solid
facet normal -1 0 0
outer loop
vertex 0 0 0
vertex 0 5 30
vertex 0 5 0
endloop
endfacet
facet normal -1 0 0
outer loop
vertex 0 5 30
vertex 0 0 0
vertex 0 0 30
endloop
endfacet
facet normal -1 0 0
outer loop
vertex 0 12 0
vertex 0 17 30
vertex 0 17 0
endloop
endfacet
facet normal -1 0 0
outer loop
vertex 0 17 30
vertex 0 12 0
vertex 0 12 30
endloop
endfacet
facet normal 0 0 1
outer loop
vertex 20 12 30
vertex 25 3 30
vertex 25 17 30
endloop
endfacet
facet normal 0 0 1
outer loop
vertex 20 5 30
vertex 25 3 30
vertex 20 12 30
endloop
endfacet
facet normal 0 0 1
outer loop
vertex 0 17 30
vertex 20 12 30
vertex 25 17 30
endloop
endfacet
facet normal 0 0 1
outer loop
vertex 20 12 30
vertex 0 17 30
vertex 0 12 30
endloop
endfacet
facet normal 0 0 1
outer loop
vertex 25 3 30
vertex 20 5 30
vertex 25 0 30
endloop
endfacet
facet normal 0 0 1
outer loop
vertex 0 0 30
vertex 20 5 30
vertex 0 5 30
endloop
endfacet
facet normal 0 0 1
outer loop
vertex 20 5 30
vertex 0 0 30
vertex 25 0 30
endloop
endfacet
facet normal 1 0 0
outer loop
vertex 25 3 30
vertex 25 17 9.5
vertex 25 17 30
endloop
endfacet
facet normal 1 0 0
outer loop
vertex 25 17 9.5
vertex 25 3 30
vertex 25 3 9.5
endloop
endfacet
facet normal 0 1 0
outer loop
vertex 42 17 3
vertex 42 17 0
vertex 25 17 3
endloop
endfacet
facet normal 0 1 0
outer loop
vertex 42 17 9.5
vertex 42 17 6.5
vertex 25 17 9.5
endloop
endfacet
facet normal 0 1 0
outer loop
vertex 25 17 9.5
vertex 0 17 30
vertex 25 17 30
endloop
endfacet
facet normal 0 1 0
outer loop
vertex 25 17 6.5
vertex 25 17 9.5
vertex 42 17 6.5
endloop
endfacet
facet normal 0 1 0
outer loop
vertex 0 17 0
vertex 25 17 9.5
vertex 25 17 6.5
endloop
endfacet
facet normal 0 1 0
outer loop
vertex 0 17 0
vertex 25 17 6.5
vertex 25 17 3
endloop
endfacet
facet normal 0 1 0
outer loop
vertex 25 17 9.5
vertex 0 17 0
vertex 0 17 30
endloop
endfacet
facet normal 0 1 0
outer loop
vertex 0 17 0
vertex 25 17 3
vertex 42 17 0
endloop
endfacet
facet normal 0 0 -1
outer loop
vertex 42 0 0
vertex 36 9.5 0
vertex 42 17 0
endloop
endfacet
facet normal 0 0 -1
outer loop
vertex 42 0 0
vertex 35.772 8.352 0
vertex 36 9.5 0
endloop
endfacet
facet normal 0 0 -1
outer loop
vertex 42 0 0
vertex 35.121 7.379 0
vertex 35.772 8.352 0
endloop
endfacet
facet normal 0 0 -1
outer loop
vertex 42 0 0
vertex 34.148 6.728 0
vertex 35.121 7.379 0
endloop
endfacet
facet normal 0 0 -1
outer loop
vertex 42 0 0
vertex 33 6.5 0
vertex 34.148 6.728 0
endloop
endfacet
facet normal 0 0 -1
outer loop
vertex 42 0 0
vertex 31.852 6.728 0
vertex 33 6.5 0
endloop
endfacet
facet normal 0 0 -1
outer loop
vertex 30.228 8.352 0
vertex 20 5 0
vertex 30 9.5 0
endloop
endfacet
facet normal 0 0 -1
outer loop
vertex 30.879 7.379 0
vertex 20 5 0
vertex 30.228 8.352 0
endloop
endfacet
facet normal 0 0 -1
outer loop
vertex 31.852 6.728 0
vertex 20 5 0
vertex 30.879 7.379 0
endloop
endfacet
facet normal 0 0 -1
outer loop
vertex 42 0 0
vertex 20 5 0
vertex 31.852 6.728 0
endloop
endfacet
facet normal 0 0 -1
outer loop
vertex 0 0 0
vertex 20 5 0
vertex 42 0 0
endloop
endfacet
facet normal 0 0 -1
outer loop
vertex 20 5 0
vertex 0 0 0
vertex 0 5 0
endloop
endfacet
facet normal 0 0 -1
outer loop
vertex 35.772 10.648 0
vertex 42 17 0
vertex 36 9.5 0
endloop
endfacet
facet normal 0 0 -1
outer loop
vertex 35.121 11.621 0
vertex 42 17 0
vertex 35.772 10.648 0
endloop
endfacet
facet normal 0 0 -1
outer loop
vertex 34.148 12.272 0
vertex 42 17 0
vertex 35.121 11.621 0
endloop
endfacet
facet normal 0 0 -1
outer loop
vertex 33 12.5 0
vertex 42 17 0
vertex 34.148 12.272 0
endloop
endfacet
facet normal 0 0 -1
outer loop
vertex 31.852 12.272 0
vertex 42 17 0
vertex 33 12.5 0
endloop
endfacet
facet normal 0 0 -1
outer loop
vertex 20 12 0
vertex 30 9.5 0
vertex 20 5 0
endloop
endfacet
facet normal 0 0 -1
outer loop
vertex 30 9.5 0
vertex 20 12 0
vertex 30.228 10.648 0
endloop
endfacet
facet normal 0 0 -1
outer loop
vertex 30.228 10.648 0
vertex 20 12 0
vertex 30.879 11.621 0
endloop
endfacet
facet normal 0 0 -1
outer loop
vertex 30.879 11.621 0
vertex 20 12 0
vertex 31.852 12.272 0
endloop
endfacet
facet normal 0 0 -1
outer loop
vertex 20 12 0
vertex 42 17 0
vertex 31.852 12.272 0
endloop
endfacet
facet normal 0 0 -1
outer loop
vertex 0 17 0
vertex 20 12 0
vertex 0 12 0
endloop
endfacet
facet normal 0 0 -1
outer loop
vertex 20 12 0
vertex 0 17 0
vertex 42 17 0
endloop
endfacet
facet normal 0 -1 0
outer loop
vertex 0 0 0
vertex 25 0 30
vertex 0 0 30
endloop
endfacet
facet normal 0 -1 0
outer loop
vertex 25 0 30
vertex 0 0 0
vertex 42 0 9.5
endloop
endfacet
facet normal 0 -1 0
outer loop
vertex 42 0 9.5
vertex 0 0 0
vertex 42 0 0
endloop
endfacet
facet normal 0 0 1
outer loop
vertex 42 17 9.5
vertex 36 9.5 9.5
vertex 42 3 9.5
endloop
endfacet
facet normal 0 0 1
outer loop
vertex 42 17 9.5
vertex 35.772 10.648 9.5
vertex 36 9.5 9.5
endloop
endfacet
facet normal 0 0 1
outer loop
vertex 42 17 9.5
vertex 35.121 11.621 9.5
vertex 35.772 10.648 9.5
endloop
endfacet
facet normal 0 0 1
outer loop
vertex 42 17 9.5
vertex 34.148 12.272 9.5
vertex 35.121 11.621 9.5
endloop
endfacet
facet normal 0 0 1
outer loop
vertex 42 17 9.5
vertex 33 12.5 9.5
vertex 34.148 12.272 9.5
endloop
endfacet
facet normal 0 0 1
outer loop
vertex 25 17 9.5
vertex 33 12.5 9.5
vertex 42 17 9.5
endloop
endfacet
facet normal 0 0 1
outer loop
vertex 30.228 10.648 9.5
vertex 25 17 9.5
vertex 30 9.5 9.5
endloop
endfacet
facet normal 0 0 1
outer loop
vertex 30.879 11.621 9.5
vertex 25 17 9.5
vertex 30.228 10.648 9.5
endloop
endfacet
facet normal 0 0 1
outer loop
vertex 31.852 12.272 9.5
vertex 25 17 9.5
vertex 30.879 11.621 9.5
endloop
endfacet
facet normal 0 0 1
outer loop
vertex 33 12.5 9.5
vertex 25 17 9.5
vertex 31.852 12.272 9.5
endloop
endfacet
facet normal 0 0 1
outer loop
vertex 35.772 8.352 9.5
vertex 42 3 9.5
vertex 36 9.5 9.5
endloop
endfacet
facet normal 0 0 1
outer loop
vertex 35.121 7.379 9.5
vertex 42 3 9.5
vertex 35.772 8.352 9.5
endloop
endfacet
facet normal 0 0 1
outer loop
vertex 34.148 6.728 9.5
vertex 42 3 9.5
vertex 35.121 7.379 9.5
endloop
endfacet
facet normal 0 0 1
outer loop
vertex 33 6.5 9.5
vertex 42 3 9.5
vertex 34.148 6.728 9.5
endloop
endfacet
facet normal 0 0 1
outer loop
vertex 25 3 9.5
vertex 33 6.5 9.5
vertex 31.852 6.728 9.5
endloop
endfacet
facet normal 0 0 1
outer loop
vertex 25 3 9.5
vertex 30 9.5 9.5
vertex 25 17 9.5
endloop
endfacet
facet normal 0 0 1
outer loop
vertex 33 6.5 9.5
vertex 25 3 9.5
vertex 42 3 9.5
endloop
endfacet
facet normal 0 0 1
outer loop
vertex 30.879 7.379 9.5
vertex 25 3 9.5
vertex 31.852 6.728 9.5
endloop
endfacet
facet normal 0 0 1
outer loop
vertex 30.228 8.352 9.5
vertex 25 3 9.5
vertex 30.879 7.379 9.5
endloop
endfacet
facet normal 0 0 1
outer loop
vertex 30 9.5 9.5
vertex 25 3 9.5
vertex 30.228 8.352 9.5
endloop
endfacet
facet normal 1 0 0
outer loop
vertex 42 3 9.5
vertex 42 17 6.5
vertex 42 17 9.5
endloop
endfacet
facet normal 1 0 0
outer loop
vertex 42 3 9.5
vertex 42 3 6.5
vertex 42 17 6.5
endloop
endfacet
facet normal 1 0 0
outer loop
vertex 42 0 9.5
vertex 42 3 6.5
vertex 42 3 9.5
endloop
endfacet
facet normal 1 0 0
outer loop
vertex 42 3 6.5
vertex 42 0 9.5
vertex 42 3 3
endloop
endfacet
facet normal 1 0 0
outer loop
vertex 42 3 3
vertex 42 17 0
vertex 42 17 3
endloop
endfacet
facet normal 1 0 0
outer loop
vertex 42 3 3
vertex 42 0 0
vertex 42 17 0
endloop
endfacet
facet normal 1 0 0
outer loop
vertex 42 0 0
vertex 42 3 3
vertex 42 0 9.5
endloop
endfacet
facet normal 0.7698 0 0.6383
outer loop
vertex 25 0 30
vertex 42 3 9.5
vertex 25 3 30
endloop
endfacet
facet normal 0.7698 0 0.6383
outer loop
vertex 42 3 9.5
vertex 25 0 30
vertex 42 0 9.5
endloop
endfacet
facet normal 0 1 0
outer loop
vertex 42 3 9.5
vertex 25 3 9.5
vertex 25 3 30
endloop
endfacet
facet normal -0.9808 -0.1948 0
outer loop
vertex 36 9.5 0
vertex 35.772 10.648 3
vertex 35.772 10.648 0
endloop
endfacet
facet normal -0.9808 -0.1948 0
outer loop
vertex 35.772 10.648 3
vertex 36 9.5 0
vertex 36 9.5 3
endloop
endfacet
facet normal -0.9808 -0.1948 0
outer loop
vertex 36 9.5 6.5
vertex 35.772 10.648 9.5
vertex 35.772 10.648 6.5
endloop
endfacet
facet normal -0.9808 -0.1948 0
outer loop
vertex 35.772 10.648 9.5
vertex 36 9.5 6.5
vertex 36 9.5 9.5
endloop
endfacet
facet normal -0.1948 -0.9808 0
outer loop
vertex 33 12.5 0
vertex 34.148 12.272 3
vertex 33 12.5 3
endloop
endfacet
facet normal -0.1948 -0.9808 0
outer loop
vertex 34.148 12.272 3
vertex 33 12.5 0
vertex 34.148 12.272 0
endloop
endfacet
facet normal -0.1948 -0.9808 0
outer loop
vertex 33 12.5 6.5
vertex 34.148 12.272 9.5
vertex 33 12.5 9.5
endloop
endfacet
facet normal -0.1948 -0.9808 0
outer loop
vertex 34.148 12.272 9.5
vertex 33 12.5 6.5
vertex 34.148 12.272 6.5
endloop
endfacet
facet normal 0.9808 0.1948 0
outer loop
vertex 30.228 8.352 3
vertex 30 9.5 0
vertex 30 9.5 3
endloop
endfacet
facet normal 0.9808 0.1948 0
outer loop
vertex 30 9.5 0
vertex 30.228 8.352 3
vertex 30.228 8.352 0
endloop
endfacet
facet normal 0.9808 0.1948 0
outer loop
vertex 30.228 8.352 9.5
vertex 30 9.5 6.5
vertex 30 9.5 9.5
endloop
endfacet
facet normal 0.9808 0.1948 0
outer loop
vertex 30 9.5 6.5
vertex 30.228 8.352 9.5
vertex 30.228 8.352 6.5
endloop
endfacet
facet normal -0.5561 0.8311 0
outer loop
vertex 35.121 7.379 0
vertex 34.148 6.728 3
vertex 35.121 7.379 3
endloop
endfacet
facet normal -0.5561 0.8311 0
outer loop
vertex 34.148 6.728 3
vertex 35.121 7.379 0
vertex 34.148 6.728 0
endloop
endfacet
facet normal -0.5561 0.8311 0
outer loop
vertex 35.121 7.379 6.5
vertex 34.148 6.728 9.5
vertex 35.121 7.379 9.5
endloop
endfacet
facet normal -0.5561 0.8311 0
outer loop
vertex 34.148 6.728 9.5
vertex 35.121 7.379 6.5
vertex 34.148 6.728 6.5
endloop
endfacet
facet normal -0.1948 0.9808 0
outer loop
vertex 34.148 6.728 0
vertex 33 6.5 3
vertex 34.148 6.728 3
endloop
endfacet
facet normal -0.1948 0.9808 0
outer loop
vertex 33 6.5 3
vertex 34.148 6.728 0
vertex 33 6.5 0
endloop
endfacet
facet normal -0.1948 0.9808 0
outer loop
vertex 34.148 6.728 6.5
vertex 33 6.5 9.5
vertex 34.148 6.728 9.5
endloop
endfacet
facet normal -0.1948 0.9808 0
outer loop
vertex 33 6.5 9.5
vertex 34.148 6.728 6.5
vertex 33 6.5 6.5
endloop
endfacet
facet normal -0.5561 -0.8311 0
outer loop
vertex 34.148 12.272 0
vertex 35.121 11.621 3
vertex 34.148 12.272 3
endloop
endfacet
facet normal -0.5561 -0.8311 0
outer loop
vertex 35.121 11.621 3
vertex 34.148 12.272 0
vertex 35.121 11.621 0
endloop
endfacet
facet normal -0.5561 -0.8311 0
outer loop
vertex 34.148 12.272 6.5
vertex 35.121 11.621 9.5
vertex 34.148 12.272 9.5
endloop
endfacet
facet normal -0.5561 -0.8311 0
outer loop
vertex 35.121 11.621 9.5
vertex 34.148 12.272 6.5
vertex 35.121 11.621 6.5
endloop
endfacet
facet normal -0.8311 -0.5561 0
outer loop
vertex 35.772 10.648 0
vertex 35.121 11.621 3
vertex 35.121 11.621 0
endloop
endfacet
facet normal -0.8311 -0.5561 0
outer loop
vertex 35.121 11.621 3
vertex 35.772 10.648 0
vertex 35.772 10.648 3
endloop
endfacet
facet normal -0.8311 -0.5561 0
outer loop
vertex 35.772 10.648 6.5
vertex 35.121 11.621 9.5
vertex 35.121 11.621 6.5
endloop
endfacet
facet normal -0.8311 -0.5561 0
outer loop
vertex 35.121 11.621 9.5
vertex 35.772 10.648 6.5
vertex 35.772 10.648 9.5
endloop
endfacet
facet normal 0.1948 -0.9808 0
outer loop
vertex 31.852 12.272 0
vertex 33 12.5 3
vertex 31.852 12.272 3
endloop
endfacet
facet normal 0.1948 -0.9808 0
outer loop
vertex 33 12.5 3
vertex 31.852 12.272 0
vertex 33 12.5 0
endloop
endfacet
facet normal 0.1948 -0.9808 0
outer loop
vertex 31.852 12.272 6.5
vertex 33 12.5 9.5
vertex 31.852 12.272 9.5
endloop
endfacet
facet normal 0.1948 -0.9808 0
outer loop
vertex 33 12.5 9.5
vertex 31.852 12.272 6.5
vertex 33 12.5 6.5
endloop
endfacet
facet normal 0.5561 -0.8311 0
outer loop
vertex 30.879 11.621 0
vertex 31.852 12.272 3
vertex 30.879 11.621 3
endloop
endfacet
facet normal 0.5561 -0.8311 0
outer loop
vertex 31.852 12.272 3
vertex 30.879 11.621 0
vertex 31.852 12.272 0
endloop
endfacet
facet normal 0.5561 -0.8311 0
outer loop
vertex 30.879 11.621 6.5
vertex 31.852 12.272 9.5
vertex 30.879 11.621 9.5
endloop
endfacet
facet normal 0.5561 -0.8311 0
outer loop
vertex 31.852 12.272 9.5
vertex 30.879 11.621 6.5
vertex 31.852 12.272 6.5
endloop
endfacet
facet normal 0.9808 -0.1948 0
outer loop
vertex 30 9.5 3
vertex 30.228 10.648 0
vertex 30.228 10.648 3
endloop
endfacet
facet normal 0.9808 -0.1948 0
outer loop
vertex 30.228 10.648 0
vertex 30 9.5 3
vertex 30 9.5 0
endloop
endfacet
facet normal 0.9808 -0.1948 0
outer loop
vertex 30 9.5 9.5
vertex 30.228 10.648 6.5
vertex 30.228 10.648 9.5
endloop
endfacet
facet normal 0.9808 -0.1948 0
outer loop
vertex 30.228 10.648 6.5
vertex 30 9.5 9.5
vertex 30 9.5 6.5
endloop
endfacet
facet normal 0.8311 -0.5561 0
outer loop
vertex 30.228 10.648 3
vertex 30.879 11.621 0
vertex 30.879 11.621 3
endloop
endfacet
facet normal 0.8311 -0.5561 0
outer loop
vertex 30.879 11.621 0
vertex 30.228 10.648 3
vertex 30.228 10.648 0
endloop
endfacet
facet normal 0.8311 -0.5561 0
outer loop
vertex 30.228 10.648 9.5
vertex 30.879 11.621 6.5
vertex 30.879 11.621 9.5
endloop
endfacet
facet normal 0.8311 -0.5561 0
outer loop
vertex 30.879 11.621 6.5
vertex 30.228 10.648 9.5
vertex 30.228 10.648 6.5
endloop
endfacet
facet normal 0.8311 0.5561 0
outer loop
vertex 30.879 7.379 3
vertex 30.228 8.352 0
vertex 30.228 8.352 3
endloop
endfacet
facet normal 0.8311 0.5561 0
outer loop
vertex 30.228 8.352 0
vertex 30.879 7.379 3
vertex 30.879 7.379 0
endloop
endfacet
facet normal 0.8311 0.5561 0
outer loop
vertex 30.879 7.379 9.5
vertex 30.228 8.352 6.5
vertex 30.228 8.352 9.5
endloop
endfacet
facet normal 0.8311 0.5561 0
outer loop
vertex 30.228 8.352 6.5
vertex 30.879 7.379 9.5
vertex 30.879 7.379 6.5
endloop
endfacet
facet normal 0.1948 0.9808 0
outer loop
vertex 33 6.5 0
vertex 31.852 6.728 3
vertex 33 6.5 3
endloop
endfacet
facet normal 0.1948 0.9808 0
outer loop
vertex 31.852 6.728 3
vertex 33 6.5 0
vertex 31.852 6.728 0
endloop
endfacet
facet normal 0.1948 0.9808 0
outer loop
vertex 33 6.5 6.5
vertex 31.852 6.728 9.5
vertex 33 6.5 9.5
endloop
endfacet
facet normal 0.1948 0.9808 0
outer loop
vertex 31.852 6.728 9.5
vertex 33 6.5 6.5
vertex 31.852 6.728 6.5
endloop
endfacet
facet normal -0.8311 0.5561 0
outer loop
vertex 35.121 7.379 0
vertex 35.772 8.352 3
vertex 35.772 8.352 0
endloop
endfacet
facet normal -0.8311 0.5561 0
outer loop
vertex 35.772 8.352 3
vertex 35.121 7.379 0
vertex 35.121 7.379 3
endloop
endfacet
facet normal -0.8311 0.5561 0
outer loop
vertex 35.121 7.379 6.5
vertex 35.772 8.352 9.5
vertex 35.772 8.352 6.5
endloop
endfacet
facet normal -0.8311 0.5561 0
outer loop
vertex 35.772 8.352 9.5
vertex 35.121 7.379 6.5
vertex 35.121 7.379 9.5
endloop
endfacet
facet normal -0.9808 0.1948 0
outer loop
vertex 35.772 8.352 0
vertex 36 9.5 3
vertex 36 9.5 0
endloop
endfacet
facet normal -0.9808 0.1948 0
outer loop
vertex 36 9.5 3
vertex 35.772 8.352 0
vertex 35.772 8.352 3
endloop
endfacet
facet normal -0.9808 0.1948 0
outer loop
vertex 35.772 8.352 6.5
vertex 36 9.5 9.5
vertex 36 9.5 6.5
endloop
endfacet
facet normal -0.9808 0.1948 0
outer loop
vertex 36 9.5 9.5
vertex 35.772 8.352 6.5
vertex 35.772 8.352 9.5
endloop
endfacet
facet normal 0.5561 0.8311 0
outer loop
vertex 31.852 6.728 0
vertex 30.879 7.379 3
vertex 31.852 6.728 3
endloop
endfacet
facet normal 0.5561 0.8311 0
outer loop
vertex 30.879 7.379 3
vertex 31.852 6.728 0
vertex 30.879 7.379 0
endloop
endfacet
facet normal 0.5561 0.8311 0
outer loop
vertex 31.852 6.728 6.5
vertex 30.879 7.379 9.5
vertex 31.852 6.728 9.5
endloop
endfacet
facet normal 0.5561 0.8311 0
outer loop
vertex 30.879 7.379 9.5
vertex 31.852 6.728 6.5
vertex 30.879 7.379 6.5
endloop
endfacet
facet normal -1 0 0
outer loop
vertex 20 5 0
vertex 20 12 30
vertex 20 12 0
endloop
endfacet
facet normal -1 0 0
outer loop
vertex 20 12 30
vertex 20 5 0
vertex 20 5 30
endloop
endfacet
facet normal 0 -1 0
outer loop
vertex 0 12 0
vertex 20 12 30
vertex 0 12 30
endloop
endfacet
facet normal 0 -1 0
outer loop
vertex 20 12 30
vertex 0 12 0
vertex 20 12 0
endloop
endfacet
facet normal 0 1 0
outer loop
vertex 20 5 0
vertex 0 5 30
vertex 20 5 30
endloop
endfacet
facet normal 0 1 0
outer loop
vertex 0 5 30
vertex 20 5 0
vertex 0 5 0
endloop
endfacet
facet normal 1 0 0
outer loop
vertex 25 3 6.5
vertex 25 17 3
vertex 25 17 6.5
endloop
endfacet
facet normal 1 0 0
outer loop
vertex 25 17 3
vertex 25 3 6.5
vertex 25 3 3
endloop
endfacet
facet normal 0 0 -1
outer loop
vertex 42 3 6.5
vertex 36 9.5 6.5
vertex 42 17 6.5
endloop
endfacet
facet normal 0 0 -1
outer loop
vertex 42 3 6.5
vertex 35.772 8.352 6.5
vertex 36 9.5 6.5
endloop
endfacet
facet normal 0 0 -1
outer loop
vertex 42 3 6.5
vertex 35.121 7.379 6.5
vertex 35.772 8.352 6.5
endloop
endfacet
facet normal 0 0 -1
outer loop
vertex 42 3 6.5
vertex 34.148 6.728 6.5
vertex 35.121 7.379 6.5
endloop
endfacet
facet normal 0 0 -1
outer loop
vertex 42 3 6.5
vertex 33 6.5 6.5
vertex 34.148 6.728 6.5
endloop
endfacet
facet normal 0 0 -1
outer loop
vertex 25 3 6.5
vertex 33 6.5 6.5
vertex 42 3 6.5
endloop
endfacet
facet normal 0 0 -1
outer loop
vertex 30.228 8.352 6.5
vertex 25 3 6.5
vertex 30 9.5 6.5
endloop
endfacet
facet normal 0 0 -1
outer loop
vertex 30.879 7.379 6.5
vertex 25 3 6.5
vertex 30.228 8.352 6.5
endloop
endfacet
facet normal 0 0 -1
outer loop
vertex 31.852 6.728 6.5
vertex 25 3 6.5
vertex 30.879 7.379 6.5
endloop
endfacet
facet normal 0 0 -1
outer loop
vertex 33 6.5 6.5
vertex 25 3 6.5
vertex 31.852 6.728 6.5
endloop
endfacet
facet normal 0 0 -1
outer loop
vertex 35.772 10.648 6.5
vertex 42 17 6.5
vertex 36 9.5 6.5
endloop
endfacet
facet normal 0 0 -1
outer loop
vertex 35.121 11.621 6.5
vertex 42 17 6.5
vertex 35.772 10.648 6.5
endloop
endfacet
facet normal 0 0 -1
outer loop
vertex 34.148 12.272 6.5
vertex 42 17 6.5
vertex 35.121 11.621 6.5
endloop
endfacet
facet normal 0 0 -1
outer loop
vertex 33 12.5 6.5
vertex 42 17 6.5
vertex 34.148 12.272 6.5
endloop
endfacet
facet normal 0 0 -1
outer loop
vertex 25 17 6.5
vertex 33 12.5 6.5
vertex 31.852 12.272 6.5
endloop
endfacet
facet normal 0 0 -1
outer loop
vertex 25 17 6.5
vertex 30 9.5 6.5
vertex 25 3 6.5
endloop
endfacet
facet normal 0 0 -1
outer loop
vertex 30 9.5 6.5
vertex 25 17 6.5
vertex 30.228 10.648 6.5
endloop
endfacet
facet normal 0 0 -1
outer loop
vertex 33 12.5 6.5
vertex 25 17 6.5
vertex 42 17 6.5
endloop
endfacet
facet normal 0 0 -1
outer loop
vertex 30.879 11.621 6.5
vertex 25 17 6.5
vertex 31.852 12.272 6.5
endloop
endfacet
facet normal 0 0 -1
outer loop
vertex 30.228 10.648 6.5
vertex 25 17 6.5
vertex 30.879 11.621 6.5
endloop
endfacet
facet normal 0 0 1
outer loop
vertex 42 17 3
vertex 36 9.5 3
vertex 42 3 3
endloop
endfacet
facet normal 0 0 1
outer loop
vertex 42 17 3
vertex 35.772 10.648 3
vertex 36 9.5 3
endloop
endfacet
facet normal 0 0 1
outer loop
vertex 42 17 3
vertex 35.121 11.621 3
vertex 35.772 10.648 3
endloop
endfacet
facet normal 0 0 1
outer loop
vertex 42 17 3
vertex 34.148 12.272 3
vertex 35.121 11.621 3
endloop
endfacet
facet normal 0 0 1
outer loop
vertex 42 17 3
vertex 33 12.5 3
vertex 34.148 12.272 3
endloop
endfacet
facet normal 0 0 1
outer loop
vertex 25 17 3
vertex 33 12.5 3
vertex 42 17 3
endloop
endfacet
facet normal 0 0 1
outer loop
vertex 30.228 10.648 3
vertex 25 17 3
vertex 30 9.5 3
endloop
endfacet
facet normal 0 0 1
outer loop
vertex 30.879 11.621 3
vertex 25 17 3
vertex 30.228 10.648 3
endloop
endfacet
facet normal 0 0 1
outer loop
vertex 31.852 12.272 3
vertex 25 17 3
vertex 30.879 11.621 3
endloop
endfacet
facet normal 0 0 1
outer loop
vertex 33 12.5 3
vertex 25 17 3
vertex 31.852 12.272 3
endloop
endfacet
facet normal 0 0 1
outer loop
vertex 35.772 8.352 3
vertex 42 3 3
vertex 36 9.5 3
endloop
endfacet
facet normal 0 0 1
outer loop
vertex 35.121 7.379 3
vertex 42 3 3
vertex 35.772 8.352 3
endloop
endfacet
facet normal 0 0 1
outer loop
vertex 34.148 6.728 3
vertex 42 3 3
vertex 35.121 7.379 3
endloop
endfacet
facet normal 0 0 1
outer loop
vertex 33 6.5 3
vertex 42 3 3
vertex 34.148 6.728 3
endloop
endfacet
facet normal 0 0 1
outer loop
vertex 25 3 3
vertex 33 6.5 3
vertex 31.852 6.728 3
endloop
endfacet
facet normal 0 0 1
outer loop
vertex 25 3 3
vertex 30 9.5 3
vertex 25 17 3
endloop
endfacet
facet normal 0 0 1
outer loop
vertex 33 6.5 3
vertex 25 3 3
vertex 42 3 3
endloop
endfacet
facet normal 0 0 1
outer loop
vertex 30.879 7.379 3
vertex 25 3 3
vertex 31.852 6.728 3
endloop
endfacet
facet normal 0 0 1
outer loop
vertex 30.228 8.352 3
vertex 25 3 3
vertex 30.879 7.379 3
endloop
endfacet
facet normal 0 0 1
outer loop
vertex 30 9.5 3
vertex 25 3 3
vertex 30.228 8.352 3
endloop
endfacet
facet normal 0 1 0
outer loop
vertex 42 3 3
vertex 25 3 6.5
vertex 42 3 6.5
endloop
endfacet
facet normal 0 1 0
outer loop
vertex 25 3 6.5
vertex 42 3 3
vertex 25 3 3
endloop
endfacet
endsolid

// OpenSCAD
//#translate([0,17,0])import("airtripper_i3_mount_bracket_mockup_v2.stl");
difference(){
union(){
cube([25,17,30]);
cube([42,17,3*2+3.5]);
hull(){
cube([42,3,3*2+3.5]);
cube([25,3,30]);
}
}
translate([33,9.5,-5])cylinder(r=3,h=50,$fn=16);

translate([-1,5,-1])cube([21,7,35]);

translate([25,3,3])cube([40,40,3.5]);
}
